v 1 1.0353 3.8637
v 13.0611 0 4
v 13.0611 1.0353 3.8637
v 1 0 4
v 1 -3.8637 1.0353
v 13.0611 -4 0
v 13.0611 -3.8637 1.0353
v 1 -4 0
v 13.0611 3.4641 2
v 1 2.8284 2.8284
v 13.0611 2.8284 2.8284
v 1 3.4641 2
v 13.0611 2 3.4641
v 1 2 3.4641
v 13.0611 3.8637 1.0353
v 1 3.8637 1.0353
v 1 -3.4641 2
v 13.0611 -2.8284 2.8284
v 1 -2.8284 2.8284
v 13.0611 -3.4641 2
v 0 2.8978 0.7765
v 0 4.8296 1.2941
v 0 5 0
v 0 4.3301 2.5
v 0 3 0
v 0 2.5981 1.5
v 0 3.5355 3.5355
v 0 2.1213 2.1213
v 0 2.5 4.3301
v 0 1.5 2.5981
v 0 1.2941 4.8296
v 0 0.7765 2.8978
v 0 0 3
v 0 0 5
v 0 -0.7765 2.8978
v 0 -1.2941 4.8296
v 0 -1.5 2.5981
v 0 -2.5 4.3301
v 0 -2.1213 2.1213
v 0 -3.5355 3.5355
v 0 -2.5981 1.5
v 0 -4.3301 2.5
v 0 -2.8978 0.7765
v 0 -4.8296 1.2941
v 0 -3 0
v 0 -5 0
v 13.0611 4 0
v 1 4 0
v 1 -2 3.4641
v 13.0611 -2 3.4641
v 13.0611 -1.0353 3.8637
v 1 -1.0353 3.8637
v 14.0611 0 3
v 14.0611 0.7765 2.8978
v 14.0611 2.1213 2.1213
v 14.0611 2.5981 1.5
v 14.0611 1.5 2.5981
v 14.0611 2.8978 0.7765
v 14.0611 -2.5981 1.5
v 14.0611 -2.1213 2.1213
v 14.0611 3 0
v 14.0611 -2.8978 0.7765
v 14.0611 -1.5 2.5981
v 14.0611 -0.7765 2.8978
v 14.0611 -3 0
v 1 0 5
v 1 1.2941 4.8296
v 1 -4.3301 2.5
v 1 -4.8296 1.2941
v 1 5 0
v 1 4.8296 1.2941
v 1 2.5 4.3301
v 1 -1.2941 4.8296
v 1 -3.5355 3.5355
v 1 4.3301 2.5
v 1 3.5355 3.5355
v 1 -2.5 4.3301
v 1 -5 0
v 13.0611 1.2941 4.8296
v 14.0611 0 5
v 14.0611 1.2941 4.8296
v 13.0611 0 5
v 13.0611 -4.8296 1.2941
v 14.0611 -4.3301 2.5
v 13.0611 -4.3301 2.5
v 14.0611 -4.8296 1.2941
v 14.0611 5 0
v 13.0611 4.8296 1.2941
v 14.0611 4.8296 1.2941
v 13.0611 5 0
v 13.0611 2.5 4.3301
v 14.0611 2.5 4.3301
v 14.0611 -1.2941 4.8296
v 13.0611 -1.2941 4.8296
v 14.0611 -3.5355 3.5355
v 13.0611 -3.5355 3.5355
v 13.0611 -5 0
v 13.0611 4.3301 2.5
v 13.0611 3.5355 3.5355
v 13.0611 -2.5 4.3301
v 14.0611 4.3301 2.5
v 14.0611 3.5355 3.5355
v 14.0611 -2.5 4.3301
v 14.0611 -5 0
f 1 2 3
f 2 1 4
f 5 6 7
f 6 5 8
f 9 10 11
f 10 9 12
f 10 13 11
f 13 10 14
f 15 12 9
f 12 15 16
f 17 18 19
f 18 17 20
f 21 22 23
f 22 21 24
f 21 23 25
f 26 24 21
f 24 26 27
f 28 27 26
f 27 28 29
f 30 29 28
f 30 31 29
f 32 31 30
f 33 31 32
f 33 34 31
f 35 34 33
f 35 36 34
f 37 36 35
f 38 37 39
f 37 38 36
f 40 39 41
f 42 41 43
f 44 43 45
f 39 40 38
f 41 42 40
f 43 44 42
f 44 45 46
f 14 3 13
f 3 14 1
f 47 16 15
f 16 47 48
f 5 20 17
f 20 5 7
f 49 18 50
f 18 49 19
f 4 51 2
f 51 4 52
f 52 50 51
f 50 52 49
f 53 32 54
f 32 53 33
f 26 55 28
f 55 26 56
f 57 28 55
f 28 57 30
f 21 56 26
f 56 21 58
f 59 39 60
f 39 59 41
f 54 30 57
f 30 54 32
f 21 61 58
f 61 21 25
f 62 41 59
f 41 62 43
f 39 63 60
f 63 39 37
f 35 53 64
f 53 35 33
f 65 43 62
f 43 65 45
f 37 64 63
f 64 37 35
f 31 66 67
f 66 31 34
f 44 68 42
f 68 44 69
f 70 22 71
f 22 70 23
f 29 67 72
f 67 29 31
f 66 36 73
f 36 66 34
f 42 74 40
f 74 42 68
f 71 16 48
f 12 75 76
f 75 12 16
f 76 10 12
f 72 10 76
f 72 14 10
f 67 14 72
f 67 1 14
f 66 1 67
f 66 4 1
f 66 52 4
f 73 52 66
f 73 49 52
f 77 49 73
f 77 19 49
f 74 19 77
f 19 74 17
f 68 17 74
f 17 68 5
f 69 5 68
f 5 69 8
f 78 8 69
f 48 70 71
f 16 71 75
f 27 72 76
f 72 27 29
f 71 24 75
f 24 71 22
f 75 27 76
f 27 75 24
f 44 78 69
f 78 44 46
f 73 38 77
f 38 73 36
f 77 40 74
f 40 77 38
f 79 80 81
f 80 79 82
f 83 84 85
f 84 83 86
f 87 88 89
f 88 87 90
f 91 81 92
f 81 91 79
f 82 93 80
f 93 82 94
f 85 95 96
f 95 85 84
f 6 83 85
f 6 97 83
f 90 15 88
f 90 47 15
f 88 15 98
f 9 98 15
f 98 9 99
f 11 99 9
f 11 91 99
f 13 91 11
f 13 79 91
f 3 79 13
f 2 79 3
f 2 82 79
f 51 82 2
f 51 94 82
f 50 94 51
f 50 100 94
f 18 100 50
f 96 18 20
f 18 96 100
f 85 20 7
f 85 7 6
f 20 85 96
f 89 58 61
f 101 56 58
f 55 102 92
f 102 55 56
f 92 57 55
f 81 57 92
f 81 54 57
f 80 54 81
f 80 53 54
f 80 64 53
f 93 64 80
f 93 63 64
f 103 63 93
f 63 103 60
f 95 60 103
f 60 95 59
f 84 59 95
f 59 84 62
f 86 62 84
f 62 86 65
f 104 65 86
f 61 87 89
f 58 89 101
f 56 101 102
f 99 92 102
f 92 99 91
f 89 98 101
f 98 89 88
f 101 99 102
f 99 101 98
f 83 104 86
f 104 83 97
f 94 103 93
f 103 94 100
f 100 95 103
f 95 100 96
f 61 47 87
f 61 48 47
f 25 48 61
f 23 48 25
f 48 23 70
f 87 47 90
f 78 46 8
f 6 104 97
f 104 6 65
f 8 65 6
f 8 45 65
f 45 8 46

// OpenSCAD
// file: ../build_environments.scad
// build_environments.scad: modules to build level sections
//

module pool(diameter=10.0, wall_height=2.0, step_width=3.0, connections=[])
{
    difference() {
        union() {
        difference() {
            cylinder(h=0.5,r1=diameter+step_width,r2=diameter+step_width,$fn=48);
            translate([0,0,-0.1])
                cylinder(h=0.7,r1=diameter,r2=diameter,$fn=48);
        }
        difference() {
            cylinder(h=wall_height,r1=diameter+step_width+1.0,r2=diameter+step_width+1.0,$fn=48);
            translate([0,0,-0.1])
                cylinder(h=wall_height+0.2,r1=diameter+step_width,r2=diameter+step_width,$fn=48);
        }
        }
    
        for (c = connections)
        {
            rotate([0,90,0]) {
                angle = atan2(c[1],c[0]);
                rotate([-angle,0,0]) {
                    cylinder(h=diameter+5.0,r1=c[2],r2=c[2],$fn=48);
                }
            }
        }
    }
}

module straight(length=10.0, width=2.0, dy1=0.0, dy2=0.0, dz=0.0)
{
    dims = [0, 0, 0, 0, 0, (dz/length)];
    matrix = [
        [ 1, dims[0], dims[1], 0 ],
        [ dims[2], 1, dims[4], 0 ],
        [ dims[5], dims[3], 1, 0 ],
        [ 0, 0, 0, 1 ]
    ];
    multmatrix(matrix)
    difference() {
        translate([dy1,0,0])
        union() {
            rotate([0,90,0]) {
                difference() {
                    cylinder(h=(length-dy1-dy2),r1=width+1.0,r2=width+1.0,$fn=24);
                    translate([0,0,-0.1])
                        cylinder(h=(length-dy1-dy2+0.2),r1=width,r2=width,$fn=24);
                }
                difference() {
                    cylinder(h=1.0,r1=width+2.0,r2=width+2.0,$fn=24);
                    translate([0,0,-0.1])
                        cylinder(h=1.2,r1=width,r2=width,$fn=24);
                }
                translate([0,0,(length-dy1-dy2)-1.0]) {
                    difference() {
                        cylinder(h=1.0,r1=width+2.0,r2=width+2.0,$fn=24);
                        translate([0,0,-0.1])
                            cylinder(h=1.2,r1=width,r2=width,$fn=24);
                    }
                }
            }
        }
        translate([0,0,-(2*width+4.0)/2])
            cube([3*length,3*length,2*width+4.0],center=true);
    }
}

module curve(p0=[0,0], center=[0,0], dir=1, angle=0.0, width=2.0)
{
    radius = sqrt((p0[0]-center[0])*(p0[0]-center[0]) + (p0[1]-center[1])*(p0[1]-center[1]));
    if (dir == 0) {
        difference() {
            rotate([0,0,-90])
            difference() {
                rotate_extrude(angle = angle, convexity = 10, $fn=32)
                    translate([radius, 0, 0])
                        circle(r = width+1.0,$fn=24);
                rotate([0,0,-1.0])
                    rotate_extrude(angle = angle+2.0, convexity = 10, $fn=32)
                        translate([radius, 0, 0])
                            circle(r = width,$fn=24);
            }
            translate([0,0,-(2*width+4.0)/2])
                cube([5*radius,5*radius,2*width+4.0],center=true);
        }
    }
    else {
        difference() {
            rotate([0,0,90])
            difference() {
                rotate_extrude(angle = -angle, convexity = 10, $fn=32)
                    translate([radius, 0, 0])
                        circle(r = width+1.0,$fn=24);
                rotate([0,0,1.0])
                    rotate_extrude(angle = -angle-2.0, convexity = 10, $fn=32)
                        translate([radius, 0, 0])
                            circle(r = width,$fn=24);
            }
            translate([0,0,-(2*width+4.0)/2])
                cube([5*radius,5*radius,2*width+4.0],center=true);
        }
    }

}

// test pool
//pool(diameter=12.0000, wall_height=3.0000, step_width=3.0000, connections=[[0.0000,-26.0000,2.0000], [23.6074,0.0000,2.0000]]);

// test straight, slope
//straight(length=26.0000, width=2.0000, dy1=11.8322, dy2=6.7082, dz=0.0000);
//straight(length=29.1549, width=12.0000, dy1=0.0000, dy2=0.0000, dz=-15.0000);

// test curve
//curve(p0=[23.6074, 0.0000], center=[23.6074, 5.0000], dir=0, angle=60.1011, width=2.0000);
//curve(p0=[33.6426, 12.4219], center=[37.9771, 9.9295], dir=1, angle=120.4627, width=2.0000);
// main file
use <../build_environments.scad>;
straight(length=14.0611, width=3.0000, dy1=0.0000, dy2=0.0000, dz=0.0000);
